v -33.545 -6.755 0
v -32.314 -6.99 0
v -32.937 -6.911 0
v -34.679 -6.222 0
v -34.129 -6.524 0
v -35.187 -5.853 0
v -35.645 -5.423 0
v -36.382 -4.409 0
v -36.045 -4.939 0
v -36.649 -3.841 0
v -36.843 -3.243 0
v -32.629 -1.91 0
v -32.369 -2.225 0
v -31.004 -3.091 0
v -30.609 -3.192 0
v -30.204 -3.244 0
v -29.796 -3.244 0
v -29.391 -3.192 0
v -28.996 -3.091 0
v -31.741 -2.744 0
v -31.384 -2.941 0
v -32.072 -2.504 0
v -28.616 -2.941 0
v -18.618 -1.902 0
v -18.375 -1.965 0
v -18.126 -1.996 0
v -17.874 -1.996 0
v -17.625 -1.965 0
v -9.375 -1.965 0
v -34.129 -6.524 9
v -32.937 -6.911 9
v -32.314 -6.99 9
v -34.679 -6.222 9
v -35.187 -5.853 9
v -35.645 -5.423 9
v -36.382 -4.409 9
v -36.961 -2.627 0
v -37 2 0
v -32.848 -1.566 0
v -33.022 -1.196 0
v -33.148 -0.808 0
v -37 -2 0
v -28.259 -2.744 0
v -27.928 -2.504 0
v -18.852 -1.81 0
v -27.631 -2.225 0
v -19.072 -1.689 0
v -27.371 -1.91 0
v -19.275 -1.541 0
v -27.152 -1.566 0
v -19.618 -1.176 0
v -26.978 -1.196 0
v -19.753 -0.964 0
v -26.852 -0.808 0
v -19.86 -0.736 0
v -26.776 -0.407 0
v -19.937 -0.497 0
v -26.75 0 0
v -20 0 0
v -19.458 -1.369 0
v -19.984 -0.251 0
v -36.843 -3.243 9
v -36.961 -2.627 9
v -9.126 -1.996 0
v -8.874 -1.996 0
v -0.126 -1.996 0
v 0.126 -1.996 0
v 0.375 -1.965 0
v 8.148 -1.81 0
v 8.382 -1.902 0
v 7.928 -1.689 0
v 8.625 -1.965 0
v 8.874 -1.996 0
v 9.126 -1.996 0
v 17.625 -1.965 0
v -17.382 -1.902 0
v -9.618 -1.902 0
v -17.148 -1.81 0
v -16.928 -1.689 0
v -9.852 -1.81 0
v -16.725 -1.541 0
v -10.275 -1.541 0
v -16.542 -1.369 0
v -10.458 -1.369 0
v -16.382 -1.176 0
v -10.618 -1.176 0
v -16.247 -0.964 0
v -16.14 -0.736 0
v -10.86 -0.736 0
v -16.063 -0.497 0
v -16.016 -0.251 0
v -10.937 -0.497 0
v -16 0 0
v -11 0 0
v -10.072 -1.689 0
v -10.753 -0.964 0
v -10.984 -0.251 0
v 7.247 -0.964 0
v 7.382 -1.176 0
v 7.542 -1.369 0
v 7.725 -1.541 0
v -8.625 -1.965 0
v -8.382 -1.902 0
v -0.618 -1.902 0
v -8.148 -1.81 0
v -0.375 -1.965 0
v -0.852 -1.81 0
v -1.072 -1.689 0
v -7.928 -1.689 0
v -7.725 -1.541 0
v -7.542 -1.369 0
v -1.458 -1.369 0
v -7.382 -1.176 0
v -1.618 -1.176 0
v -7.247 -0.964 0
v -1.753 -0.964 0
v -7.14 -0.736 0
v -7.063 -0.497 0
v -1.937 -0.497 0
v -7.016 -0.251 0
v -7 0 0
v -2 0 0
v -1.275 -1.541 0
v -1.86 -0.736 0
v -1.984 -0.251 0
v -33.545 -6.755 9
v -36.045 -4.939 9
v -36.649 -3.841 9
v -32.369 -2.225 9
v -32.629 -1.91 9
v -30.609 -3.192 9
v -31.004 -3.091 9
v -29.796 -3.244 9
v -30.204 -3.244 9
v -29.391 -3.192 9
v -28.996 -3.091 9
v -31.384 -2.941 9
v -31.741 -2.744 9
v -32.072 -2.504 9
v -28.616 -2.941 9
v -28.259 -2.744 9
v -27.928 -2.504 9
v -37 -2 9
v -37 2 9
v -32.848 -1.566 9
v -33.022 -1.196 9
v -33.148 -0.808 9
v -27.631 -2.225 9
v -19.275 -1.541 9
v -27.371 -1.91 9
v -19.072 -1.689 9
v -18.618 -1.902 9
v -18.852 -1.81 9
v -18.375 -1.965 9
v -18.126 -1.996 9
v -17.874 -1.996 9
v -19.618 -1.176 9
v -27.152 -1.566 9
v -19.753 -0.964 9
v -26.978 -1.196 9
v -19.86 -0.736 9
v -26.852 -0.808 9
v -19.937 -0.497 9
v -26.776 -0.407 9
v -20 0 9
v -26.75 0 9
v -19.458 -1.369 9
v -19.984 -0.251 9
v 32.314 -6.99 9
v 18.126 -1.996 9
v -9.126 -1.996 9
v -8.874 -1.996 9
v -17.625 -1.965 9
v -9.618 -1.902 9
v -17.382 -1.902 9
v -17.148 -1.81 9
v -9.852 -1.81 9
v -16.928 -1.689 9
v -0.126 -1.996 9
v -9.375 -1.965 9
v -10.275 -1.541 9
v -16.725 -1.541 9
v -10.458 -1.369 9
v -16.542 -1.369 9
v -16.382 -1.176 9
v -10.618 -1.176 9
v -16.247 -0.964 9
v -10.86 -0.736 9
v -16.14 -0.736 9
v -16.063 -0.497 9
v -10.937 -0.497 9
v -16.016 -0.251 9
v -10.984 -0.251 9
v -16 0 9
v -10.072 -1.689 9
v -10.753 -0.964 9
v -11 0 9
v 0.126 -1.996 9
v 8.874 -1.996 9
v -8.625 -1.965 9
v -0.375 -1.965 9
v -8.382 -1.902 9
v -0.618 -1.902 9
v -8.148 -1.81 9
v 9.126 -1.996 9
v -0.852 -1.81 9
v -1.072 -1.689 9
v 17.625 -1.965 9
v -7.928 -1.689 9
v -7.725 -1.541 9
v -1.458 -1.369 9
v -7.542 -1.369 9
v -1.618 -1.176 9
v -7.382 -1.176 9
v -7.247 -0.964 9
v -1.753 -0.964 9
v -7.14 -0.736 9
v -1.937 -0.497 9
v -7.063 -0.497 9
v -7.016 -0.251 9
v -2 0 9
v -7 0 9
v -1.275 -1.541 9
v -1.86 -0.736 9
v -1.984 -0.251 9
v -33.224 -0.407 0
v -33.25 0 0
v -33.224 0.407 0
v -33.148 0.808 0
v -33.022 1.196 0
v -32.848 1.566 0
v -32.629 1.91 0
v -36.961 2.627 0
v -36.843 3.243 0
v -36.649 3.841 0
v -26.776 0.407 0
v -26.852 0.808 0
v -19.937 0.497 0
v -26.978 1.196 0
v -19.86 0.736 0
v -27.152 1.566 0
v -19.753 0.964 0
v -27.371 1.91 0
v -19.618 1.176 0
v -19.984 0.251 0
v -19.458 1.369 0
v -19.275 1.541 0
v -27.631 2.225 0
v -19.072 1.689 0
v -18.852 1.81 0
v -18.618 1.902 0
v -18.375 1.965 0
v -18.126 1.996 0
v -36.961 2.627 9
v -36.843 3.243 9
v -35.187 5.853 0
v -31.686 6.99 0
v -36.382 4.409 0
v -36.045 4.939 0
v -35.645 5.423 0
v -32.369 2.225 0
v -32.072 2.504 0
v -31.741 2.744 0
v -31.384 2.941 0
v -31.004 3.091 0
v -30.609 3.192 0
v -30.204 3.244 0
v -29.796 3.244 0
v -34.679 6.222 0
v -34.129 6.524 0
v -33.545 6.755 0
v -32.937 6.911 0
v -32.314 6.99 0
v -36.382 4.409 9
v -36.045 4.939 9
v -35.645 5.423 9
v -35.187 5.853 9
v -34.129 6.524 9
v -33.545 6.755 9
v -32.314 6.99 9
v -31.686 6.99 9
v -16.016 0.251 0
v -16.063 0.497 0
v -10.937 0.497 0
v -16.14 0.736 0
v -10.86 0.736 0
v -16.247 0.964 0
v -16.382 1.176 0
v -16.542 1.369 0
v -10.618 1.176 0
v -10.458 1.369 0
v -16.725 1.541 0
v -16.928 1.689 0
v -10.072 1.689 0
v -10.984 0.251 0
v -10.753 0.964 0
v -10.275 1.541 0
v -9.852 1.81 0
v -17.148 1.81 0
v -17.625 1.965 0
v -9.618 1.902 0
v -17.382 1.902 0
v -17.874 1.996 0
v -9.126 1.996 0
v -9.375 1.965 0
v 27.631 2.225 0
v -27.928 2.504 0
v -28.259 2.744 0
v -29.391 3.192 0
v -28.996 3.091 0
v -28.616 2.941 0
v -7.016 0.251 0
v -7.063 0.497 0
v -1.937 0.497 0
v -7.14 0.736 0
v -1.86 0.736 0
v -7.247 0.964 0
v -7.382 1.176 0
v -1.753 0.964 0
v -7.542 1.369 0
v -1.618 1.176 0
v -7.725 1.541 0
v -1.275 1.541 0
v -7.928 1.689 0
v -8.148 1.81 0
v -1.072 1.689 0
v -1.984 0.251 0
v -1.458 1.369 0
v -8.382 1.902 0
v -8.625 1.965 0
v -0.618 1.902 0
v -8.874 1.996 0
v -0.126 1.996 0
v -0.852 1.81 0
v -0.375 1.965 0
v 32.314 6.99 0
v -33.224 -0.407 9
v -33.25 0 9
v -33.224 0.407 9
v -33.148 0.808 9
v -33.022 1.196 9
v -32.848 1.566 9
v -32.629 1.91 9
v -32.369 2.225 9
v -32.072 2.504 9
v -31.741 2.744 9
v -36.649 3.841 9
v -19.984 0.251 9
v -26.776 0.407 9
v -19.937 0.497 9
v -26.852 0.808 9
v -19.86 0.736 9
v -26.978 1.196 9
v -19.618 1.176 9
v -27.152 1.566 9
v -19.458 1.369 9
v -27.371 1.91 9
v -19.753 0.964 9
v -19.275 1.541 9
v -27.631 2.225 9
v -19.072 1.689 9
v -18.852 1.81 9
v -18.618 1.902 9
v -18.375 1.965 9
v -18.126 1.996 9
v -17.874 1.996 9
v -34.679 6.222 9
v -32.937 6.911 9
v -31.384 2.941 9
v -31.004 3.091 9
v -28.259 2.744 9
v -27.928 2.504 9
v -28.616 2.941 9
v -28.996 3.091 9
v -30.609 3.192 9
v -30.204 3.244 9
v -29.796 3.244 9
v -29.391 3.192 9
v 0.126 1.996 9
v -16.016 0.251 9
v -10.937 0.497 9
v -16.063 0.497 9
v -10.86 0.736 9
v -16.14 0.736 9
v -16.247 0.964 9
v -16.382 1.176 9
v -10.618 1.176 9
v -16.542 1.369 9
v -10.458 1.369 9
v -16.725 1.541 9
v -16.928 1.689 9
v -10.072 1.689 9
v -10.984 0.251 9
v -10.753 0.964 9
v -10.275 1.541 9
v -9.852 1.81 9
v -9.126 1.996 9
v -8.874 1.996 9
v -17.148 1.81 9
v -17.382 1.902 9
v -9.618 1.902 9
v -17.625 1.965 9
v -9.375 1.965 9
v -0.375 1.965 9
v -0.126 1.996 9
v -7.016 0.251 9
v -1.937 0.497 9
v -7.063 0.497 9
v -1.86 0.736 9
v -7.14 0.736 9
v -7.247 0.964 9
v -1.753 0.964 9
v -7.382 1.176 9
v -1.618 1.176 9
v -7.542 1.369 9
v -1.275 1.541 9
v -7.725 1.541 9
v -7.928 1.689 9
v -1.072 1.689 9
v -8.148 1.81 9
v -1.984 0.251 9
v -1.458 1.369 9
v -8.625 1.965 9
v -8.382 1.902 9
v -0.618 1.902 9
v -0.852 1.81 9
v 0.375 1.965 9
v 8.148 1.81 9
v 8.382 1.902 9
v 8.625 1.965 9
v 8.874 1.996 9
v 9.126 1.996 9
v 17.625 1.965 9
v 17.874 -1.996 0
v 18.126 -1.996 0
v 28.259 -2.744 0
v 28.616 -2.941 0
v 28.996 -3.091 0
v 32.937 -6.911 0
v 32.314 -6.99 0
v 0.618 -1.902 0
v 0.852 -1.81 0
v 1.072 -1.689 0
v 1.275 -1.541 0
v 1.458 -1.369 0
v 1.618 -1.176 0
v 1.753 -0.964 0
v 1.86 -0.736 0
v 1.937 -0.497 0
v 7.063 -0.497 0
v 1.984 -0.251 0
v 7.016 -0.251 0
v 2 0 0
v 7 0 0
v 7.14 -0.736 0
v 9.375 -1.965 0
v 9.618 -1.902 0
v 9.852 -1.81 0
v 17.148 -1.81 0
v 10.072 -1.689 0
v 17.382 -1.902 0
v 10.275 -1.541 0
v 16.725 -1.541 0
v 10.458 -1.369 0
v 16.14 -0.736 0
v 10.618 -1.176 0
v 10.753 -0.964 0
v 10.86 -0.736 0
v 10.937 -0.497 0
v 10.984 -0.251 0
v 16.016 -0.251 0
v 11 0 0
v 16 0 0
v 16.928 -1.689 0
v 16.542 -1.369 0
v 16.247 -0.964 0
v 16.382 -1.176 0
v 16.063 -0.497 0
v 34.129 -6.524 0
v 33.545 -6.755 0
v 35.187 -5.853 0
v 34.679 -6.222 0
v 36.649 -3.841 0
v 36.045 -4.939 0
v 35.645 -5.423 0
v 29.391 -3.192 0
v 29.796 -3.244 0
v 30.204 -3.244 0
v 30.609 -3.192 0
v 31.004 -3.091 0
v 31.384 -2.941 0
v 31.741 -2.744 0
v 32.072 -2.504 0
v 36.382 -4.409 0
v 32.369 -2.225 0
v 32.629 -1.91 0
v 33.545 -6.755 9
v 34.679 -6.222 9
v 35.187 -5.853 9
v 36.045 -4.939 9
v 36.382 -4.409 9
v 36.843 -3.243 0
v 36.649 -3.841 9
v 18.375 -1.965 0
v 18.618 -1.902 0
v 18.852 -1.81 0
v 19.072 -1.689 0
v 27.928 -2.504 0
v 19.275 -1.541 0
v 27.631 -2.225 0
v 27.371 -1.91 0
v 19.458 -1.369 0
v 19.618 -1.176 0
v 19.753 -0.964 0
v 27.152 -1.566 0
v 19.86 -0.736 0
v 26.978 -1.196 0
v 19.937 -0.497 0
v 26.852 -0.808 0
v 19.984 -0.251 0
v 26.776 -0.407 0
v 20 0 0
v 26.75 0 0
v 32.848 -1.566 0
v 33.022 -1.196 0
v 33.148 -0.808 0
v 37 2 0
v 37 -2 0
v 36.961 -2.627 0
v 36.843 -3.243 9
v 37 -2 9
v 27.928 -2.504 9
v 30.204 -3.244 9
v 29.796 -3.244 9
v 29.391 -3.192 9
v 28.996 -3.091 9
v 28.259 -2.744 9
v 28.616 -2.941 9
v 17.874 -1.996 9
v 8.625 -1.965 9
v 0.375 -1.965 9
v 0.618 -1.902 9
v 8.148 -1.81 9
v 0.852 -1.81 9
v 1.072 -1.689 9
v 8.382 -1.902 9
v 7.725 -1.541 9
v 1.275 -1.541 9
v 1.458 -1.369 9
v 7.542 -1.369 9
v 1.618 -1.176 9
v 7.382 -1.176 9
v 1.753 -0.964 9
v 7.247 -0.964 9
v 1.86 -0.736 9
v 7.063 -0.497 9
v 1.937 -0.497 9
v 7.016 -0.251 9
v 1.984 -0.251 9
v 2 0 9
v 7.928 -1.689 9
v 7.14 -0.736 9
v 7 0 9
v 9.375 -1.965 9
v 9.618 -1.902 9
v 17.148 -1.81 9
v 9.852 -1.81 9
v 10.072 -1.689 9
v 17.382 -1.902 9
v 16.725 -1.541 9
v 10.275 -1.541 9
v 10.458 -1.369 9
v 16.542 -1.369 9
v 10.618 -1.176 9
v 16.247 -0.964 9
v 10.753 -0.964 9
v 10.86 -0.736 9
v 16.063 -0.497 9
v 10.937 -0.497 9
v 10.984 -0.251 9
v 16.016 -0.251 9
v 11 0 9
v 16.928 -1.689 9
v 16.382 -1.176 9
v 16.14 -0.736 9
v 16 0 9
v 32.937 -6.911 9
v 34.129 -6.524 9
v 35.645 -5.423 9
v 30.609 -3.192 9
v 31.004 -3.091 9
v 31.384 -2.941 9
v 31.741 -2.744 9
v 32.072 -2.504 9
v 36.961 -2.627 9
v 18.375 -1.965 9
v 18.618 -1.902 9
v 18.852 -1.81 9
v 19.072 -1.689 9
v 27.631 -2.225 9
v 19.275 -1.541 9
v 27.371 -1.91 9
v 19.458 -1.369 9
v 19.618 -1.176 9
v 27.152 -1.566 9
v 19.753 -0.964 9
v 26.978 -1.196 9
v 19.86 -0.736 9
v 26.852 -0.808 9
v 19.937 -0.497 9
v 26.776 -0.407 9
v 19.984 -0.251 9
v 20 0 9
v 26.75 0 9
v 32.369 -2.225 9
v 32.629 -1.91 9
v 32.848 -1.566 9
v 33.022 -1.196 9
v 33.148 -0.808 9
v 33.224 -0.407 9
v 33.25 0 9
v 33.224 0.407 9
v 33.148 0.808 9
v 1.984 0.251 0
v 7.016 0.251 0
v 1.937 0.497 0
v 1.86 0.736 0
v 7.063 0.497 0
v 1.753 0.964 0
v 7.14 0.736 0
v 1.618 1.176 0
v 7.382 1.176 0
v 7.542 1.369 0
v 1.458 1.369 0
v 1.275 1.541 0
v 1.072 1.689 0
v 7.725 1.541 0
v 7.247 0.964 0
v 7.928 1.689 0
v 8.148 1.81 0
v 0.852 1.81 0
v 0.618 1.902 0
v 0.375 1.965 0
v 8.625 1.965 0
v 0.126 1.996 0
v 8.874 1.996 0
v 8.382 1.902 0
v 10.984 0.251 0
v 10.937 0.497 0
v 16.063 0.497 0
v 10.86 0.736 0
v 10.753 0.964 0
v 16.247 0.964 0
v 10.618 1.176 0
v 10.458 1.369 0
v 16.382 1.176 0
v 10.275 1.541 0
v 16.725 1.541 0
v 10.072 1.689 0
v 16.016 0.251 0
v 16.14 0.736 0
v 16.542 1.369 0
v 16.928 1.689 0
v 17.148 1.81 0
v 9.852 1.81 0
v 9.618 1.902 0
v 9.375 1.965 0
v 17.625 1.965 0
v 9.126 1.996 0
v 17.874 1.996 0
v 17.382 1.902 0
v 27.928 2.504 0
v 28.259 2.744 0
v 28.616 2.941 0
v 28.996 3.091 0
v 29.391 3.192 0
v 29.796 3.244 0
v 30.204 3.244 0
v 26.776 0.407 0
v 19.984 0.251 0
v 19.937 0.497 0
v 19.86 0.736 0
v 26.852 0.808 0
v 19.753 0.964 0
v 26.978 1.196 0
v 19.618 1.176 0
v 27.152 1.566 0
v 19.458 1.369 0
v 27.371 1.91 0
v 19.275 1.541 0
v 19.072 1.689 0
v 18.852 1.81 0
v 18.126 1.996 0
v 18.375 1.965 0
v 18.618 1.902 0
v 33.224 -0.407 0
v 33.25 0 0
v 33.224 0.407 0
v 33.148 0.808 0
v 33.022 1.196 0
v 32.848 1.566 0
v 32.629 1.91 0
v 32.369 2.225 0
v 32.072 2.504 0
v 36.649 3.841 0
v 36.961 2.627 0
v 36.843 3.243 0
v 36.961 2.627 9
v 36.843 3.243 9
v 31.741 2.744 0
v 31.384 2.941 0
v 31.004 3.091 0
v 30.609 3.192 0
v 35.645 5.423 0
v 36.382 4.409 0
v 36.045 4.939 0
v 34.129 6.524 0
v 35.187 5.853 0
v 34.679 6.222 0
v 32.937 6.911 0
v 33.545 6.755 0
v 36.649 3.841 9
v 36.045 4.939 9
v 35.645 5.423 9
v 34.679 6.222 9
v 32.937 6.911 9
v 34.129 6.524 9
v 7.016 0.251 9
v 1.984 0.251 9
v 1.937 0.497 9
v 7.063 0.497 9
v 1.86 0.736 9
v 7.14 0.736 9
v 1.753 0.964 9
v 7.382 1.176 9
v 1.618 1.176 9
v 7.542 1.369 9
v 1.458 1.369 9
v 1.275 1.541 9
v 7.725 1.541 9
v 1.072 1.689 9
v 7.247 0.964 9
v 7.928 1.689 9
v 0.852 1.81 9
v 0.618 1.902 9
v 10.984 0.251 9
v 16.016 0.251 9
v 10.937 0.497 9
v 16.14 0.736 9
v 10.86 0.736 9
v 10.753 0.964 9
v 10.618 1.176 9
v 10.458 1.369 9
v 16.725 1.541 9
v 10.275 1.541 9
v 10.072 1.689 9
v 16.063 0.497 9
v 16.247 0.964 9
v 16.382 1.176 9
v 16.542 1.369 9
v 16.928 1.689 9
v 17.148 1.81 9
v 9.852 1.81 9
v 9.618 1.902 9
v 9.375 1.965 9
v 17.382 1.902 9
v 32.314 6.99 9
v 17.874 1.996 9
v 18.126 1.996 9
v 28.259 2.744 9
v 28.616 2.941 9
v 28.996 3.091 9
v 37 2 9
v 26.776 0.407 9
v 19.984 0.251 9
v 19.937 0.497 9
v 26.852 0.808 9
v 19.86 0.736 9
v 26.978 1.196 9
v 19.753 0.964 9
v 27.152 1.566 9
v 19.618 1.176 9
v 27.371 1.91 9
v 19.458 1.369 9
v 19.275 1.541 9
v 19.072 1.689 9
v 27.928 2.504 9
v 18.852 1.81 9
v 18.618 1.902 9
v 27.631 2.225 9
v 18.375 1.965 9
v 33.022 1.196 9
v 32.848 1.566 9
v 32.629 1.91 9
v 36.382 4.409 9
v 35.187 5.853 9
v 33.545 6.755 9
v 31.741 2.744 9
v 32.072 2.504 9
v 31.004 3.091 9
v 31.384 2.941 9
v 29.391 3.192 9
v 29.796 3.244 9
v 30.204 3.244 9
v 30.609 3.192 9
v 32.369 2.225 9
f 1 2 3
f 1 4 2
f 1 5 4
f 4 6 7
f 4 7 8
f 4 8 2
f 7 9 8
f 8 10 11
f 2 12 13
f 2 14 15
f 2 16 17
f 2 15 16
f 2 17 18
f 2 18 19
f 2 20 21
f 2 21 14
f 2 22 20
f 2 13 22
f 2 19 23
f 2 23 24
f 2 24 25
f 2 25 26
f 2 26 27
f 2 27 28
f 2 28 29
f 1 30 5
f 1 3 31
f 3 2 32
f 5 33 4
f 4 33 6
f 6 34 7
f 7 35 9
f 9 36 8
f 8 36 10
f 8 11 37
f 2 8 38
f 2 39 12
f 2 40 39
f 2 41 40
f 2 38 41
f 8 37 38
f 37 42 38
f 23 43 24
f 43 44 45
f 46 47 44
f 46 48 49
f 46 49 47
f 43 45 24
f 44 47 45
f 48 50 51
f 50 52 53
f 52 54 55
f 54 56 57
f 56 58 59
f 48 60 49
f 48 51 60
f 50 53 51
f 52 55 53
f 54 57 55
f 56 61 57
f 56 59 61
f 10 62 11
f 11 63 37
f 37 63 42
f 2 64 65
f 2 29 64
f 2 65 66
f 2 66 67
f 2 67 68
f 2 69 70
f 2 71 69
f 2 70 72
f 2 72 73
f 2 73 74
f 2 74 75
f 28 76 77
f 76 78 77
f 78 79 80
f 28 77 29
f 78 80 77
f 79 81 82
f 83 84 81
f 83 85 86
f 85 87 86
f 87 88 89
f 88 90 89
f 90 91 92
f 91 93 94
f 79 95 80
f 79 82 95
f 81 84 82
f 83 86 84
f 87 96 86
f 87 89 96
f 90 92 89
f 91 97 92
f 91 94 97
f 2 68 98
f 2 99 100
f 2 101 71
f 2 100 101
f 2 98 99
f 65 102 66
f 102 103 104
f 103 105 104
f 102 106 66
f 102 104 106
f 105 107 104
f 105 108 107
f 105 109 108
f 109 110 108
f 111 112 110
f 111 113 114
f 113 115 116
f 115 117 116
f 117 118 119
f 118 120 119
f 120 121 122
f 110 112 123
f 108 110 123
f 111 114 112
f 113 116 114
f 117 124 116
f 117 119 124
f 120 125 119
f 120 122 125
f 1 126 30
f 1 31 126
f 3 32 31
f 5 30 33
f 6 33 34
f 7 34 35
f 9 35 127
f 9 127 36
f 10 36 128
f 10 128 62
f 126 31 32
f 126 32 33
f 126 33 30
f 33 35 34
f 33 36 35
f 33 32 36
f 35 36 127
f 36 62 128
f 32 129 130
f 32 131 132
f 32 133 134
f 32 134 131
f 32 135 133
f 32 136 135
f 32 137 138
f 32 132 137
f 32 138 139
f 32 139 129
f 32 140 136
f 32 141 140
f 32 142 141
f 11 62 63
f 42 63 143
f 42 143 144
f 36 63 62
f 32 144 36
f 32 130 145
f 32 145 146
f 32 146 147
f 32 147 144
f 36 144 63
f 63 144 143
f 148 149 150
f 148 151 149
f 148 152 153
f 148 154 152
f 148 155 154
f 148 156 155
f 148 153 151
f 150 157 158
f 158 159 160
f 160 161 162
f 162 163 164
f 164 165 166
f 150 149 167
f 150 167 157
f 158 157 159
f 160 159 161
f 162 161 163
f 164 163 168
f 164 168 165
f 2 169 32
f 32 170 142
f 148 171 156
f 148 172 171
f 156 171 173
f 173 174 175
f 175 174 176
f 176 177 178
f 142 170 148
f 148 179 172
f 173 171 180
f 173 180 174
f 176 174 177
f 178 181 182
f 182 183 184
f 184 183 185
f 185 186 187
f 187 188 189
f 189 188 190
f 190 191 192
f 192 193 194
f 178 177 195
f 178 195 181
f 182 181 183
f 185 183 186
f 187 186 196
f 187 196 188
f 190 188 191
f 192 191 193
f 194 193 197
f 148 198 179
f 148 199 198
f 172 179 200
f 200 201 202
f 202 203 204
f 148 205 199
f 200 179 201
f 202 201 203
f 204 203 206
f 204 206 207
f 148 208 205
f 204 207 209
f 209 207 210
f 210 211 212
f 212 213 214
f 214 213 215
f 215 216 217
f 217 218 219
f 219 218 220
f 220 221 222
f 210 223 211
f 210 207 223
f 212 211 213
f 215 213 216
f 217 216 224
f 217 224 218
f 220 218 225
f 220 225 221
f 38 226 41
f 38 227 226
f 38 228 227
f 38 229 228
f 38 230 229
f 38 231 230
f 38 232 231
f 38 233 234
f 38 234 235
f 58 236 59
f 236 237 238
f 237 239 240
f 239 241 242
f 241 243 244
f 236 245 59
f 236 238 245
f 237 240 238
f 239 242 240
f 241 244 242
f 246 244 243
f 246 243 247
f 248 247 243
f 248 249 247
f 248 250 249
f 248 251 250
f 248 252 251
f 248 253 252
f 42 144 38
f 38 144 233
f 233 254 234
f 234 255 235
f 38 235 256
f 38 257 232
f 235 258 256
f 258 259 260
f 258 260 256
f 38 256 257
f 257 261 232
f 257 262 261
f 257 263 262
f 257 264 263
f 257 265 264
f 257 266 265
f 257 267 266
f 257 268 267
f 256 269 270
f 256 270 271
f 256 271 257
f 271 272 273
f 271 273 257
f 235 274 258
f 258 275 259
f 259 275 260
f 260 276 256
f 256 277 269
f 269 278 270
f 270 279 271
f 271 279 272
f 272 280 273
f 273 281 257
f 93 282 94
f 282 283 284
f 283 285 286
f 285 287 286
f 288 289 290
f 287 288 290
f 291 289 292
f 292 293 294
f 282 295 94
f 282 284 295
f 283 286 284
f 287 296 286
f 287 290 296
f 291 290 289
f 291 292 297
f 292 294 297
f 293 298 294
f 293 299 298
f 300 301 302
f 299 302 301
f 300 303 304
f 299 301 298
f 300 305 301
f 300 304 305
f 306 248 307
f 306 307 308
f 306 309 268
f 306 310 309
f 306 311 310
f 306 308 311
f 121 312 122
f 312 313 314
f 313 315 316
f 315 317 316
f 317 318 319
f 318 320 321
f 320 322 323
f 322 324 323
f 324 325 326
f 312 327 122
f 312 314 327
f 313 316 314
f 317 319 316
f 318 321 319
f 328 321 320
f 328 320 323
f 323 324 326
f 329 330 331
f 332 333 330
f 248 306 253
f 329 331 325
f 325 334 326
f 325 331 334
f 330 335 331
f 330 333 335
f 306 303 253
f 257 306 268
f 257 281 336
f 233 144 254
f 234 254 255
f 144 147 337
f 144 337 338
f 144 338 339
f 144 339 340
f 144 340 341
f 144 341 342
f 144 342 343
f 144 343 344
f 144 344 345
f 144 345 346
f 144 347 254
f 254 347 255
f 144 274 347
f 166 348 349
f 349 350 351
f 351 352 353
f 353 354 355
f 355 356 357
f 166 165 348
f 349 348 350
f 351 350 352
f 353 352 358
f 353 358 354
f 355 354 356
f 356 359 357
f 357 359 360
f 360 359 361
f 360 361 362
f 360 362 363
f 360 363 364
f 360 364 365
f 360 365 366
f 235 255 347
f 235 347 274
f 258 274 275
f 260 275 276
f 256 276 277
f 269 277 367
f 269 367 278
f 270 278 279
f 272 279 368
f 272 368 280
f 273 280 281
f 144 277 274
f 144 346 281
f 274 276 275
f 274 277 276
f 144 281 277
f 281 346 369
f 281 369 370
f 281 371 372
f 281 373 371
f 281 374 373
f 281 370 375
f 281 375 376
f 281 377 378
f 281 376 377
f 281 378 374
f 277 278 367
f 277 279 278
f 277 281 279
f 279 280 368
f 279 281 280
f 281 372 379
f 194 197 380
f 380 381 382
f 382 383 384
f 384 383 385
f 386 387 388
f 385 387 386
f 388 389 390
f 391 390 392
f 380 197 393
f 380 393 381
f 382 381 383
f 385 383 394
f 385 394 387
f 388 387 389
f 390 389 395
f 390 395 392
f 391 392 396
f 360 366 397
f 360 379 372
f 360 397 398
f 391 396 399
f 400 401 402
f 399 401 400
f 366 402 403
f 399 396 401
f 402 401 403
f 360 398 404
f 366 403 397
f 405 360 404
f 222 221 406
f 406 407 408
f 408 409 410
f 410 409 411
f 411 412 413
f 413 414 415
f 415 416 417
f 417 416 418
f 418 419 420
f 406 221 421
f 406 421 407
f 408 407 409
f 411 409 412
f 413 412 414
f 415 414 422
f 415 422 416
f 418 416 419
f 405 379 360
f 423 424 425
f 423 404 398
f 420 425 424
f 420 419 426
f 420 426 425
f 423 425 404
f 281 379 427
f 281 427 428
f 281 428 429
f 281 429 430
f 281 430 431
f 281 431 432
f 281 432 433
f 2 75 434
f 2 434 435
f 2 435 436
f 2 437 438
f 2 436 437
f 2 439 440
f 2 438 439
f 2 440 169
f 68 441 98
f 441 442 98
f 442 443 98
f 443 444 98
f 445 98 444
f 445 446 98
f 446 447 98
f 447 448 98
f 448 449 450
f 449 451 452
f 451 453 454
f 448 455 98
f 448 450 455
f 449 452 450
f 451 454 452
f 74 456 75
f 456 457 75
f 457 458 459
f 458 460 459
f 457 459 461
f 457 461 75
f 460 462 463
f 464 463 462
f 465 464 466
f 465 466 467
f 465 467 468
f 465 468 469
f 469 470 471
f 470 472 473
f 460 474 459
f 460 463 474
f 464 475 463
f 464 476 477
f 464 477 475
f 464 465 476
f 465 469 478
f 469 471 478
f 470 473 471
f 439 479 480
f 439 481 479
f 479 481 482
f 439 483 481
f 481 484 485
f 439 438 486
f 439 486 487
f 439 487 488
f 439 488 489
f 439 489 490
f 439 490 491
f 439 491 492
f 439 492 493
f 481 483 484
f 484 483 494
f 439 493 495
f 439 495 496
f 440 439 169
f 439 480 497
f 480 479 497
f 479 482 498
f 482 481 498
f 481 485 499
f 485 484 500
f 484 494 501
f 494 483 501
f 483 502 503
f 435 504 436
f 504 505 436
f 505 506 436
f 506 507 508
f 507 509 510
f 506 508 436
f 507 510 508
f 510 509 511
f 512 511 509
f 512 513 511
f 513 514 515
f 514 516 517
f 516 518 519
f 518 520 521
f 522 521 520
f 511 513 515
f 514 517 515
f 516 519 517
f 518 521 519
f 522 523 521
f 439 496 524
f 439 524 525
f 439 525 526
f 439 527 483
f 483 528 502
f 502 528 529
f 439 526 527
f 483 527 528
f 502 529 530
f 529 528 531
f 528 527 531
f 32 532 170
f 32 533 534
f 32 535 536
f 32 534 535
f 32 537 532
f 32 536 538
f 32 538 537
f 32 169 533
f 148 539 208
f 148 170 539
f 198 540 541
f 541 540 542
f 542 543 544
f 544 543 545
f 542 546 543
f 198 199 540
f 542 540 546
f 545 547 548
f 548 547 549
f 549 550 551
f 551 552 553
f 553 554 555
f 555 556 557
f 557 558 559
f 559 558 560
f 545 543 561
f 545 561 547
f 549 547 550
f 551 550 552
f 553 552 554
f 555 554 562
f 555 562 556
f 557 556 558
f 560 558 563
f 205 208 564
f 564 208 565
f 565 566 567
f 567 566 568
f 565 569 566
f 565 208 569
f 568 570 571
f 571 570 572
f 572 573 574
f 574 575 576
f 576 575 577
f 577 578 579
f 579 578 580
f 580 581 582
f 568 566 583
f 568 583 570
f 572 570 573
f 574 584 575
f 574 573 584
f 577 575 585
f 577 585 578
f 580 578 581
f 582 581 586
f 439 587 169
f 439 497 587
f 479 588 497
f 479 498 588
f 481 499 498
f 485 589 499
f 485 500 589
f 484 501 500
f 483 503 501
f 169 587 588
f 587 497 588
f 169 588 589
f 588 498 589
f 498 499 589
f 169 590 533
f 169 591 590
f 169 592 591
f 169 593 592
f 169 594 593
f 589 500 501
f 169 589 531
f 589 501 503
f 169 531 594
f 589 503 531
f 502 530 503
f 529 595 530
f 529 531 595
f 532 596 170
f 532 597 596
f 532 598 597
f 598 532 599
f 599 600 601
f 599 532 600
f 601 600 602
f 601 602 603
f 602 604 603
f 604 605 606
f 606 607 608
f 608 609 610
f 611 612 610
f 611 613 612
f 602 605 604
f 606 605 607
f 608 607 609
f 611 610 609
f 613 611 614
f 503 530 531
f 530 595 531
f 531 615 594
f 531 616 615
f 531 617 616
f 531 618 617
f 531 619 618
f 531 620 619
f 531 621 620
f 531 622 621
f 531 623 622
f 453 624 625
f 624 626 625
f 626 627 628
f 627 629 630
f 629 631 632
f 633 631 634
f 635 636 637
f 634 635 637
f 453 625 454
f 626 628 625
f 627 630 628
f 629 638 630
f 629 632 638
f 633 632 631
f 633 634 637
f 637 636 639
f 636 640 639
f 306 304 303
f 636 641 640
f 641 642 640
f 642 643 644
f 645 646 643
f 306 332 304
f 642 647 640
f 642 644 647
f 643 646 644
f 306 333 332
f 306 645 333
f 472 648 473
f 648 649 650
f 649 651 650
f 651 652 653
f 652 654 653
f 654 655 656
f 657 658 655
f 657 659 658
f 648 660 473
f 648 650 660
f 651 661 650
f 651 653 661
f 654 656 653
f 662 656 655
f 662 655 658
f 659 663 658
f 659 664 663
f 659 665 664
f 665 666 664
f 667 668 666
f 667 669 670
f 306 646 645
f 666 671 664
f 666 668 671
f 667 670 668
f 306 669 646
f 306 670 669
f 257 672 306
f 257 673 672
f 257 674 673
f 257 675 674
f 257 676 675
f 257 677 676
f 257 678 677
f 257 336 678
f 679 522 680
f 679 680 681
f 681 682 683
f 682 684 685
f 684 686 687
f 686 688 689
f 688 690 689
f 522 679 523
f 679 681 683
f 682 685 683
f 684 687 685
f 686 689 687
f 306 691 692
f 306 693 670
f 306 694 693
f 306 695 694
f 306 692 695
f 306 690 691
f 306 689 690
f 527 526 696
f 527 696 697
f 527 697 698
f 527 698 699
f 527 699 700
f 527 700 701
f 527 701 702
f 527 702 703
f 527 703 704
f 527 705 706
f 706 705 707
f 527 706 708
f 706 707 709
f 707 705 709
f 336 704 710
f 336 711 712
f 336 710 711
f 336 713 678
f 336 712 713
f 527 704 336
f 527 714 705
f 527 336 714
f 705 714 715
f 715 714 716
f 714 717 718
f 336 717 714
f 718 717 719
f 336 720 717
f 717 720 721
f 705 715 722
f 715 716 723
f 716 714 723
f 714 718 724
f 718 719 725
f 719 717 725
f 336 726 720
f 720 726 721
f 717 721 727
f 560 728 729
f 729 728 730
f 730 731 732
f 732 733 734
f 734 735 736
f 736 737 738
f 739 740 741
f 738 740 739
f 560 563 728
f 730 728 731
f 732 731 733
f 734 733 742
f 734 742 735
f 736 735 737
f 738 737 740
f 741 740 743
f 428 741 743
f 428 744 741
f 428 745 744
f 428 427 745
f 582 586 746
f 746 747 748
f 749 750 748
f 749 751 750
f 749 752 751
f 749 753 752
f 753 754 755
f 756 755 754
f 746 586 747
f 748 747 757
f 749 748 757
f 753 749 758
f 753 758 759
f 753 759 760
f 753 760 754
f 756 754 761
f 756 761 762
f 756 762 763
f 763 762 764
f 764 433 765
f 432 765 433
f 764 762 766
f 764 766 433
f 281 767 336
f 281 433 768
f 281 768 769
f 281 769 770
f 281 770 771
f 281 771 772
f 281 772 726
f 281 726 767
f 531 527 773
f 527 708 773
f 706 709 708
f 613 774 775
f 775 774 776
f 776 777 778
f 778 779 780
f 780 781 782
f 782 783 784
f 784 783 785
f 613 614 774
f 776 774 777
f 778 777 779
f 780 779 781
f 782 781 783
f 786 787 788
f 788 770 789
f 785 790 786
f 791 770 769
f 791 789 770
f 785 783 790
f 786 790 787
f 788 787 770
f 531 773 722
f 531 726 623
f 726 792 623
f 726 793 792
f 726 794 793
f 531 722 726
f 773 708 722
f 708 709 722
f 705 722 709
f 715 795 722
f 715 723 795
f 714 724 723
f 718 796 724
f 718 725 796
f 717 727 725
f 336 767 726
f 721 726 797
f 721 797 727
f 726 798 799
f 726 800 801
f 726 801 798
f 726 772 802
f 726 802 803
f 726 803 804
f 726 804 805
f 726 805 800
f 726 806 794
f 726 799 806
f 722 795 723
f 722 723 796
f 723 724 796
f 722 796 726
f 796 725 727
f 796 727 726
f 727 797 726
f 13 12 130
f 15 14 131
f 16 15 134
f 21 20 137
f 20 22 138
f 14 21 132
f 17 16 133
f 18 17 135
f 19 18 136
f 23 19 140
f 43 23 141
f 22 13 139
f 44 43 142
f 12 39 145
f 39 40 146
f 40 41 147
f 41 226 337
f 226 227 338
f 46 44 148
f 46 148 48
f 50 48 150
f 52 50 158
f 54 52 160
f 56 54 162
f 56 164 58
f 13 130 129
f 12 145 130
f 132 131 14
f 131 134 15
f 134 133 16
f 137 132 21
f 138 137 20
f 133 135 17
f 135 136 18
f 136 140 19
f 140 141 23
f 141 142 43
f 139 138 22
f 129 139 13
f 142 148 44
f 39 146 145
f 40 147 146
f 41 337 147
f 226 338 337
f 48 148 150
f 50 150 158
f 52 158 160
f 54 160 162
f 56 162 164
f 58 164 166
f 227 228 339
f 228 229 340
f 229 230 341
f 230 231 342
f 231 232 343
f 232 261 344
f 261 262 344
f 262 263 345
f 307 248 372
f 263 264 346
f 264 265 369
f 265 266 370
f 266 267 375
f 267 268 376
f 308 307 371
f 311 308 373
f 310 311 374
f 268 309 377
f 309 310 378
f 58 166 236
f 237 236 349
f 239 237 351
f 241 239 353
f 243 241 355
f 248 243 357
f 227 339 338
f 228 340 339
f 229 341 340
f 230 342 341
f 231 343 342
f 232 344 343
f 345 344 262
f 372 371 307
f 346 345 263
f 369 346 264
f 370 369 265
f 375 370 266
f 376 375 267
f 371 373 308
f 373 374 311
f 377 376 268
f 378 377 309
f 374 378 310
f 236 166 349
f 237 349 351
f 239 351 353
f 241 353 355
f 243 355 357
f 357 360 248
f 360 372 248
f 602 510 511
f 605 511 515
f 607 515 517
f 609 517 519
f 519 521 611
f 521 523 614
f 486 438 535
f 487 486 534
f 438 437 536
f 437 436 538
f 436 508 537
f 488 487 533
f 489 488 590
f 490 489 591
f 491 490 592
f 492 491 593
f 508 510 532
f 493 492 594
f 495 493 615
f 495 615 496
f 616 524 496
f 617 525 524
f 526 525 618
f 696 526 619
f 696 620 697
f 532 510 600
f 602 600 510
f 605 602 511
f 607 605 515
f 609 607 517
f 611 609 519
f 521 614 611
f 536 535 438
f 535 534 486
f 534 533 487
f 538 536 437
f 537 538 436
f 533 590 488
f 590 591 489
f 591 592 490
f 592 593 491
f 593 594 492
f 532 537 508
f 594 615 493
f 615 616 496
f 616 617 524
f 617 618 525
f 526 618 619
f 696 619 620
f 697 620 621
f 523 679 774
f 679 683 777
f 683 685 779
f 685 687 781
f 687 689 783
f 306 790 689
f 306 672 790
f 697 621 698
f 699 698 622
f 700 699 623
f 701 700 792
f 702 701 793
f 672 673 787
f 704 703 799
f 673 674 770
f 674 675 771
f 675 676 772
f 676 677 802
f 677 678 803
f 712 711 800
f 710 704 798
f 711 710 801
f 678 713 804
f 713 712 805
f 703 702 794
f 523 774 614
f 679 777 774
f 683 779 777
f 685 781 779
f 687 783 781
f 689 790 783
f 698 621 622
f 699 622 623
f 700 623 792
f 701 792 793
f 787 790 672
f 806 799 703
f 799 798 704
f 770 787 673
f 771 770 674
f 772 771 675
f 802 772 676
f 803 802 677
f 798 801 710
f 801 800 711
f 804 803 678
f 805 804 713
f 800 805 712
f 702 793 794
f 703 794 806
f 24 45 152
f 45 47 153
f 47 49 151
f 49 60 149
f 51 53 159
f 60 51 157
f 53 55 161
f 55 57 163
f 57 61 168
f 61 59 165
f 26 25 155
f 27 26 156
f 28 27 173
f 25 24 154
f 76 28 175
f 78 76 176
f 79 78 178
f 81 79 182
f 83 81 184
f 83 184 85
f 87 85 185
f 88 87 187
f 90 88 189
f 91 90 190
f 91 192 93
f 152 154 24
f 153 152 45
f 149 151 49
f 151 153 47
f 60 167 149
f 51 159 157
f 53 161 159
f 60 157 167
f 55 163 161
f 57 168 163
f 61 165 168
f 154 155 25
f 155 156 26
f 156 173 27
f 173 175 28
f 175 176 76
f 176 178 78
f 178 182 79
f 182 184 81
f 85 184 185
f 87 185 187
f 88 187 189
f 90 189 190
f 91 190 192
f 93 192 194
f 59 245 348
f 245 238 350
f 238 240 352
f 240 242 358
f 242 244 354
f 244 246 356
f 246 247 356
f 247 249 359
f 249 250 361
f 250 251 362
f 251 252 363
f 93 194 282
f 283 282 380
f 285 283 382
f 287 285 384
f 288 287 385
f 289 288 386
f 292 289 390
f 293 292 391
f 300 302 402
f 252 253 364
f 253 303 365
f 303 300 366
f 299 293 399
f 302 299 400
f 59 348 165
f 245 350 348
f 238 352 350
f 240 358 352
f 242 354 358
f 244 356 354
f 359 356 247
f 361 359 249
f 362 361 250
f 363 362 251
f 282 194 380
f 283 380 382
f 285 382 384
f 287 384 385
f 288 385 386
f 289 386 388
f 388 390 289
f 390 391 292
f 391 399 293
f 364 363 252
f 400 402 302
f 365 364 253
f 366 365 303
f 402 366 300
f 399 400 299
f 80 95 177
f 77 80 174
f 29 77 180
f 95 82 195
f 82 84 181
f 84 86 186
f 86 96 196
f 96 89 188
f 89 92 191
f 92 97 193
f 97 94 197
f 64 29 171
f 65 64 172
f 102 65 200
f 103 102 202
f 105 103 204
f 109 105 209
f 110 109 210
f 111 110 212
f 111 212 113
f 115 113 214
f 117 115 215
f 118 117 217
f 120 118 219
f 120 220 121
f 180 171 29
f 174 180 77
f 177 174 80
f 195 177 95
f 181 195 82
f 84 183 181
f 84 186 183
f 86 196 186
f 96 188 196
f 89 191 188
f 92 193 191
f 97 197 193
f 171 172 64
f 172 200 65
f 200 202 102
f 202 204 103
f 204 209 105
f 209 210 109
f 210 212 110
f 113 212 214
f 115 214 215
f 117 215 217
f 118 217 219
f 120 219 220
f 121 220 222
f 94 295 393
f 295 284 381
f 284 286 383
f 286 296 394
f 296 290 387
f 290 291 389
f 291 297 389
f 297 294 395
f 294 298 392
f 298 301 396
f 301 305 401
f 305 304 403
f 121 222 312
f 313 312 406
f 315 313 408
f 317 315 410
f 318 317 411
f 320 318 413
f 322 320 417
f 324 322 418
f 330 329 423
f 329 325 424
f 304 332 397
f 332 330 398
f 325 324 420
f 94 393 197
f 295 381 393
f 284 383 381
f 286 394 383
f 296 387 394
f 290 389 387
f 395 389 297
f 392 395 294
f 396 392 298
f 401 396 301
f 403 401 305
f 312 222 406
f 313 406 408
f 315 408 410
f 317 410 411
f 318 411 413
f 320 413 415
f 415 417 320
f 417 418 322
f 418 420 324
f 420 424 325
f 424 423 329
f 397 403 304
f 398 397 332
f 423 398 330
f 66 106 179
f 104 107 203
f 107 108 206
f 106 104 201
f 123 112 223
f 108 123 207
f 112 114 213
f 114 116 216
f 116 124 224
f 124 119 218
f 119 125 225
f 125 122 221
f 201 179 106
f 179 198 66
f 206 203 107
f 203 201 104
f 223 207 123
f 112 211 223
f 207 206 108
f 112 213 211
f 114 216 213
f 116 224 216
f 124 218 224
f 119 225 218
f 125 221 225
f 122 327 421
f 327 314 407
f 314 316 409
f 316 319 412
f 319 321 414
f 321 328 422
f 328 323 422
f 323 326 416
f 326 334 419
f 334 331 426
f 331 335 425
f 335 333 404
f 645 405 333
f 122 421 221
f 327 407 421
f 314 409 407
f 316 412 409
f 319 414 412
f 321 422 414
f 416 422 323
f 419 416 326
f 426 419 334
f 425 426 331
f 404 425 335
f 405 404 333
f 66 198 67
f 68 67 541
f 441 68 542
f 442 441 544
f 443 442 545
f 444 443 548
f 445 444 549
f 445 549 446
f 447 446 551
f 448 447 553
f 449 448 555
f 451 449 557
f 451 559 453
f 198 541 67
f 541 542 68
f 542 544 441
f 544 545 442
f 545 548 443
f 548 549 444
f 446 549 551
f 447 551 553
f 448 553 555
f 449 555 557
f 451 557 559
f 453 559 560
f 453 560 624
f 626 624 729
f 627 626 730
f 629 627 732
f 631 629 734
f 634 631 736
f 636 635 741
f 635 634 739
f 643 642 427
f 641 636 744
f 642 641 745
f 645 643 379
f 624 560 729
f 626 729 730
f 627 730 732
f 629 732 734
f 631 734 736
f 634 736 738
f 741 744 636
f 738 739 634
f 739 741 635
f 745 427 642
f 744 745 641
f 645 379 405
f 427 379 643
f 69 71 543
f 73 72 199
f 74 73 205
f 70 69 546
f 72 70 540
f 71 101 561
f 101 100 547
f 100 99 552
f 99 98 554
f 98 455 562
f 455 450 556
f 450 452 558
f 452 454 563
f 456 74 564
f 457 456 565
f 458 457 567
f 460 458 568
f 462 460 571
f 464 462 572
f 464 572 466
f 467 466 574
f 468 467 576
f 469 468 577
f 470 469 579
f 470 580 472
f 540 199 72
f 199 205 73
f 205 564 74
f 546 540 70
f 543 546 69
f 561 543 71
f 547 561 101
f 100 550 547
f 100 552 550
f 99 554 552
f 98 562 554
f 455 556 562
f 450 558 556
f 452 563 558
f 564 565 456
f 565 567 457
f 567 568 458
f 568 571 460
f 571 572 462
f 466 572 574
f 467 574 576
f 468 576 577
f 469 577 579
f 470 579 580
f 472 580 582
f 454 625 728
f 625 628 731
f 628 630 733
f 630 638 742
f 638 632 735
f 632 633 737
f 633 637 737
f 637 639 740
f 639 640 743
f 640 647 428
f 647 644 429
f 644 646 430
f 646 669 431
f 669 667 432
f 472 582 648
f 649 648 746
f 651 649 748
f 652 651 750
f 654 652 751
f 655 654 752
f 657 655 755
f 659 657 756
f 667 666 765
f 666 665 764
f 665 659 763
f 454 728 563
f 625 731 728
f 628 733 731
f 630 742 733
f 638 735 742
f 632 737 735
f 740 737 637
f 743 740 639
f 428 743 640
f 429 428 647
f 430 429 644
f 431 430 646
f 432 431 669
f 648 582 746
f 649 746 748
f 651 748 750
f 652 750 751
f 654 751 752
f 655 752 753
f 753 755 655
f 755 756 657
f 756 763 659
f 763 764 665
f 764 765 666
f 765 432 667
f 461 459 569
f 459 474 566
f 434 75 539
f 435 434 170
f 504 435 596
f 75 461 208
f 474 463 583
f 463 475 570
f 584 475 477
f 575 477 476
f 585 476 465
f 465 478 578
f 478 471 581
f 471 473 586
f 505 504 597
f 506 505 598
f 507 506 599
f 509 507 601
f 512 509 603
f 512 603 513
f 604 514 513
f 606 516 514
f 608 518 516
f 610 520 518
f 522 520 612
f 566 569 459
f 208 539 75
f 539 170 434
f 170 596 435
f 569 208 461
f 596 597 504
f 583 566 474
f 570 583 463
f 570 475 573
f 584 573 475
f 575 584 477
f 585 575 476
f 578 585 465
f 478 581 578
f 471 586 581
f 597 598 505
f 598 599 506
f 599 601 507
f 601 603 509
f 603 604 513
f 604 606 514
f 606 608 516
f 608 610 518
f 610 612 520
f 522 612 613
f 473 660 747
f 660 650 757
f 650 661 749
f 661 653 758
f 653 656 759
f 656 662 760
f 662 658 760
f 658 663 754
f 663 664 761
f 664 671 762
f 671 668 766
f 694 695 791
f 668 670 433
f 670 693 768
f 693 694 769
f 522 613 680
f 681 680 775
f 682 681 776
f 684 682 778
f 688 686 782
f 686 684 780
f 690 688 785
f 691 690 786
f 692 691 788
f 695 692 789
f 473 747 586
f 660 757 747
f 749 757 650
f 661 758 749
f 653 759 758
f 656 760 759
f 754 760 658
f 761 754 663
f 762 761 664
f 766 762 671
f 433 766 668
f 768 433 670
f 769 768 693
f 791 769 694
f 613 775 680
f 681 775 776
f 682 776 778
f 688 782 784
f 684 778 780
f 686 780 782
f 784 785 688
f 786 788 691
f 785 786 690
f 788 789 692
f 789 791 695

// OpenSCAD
$fn = 50;

difference() {
	union() {
		hull() {
			translate(v = [-32.0, 2.0, 0]) {
				cylinder(h = 9, r = 5);
			}
			translate(v = [32.0, 2.0, 0]) {
				cylinder(h = 9, r = 5);
			}
			translate(v = [-32.0, -2.0, 0]) {
				cylinder(h = 9, r = 5);
			}
			translate(v = [32.0, -2.0, 0]) {
				cylinder(h = 9, r = 5);
			}
		}
	}
	union() {
		translate(v = [-30.0, 0.0, 0]) {
			cylinder(h = 9, r = 3.25);
		}
		translate(v = [30.0, 0.0, 0]) {
			cylinder(h = 9, r = 3.25);
		}
		translate(v = [-18.0, 0, 0.0]) {
			cylinder(h = 9, r = 2.0);
		}
		translate(v = [-9.0, 0, 0.0]) {
			cylinder(h = 9, r = 2.0);
		}
		cylinder(h = 9, r = 2.0);
		translate(v = [9.0, 0, 0.0]) {
			cylinder(h = 9, r = 2.0);
		}
		translate(v = [18.0, 0, 0.0]) {
			cylinder(h = 9, r = 2.0);
		}
	}
}
